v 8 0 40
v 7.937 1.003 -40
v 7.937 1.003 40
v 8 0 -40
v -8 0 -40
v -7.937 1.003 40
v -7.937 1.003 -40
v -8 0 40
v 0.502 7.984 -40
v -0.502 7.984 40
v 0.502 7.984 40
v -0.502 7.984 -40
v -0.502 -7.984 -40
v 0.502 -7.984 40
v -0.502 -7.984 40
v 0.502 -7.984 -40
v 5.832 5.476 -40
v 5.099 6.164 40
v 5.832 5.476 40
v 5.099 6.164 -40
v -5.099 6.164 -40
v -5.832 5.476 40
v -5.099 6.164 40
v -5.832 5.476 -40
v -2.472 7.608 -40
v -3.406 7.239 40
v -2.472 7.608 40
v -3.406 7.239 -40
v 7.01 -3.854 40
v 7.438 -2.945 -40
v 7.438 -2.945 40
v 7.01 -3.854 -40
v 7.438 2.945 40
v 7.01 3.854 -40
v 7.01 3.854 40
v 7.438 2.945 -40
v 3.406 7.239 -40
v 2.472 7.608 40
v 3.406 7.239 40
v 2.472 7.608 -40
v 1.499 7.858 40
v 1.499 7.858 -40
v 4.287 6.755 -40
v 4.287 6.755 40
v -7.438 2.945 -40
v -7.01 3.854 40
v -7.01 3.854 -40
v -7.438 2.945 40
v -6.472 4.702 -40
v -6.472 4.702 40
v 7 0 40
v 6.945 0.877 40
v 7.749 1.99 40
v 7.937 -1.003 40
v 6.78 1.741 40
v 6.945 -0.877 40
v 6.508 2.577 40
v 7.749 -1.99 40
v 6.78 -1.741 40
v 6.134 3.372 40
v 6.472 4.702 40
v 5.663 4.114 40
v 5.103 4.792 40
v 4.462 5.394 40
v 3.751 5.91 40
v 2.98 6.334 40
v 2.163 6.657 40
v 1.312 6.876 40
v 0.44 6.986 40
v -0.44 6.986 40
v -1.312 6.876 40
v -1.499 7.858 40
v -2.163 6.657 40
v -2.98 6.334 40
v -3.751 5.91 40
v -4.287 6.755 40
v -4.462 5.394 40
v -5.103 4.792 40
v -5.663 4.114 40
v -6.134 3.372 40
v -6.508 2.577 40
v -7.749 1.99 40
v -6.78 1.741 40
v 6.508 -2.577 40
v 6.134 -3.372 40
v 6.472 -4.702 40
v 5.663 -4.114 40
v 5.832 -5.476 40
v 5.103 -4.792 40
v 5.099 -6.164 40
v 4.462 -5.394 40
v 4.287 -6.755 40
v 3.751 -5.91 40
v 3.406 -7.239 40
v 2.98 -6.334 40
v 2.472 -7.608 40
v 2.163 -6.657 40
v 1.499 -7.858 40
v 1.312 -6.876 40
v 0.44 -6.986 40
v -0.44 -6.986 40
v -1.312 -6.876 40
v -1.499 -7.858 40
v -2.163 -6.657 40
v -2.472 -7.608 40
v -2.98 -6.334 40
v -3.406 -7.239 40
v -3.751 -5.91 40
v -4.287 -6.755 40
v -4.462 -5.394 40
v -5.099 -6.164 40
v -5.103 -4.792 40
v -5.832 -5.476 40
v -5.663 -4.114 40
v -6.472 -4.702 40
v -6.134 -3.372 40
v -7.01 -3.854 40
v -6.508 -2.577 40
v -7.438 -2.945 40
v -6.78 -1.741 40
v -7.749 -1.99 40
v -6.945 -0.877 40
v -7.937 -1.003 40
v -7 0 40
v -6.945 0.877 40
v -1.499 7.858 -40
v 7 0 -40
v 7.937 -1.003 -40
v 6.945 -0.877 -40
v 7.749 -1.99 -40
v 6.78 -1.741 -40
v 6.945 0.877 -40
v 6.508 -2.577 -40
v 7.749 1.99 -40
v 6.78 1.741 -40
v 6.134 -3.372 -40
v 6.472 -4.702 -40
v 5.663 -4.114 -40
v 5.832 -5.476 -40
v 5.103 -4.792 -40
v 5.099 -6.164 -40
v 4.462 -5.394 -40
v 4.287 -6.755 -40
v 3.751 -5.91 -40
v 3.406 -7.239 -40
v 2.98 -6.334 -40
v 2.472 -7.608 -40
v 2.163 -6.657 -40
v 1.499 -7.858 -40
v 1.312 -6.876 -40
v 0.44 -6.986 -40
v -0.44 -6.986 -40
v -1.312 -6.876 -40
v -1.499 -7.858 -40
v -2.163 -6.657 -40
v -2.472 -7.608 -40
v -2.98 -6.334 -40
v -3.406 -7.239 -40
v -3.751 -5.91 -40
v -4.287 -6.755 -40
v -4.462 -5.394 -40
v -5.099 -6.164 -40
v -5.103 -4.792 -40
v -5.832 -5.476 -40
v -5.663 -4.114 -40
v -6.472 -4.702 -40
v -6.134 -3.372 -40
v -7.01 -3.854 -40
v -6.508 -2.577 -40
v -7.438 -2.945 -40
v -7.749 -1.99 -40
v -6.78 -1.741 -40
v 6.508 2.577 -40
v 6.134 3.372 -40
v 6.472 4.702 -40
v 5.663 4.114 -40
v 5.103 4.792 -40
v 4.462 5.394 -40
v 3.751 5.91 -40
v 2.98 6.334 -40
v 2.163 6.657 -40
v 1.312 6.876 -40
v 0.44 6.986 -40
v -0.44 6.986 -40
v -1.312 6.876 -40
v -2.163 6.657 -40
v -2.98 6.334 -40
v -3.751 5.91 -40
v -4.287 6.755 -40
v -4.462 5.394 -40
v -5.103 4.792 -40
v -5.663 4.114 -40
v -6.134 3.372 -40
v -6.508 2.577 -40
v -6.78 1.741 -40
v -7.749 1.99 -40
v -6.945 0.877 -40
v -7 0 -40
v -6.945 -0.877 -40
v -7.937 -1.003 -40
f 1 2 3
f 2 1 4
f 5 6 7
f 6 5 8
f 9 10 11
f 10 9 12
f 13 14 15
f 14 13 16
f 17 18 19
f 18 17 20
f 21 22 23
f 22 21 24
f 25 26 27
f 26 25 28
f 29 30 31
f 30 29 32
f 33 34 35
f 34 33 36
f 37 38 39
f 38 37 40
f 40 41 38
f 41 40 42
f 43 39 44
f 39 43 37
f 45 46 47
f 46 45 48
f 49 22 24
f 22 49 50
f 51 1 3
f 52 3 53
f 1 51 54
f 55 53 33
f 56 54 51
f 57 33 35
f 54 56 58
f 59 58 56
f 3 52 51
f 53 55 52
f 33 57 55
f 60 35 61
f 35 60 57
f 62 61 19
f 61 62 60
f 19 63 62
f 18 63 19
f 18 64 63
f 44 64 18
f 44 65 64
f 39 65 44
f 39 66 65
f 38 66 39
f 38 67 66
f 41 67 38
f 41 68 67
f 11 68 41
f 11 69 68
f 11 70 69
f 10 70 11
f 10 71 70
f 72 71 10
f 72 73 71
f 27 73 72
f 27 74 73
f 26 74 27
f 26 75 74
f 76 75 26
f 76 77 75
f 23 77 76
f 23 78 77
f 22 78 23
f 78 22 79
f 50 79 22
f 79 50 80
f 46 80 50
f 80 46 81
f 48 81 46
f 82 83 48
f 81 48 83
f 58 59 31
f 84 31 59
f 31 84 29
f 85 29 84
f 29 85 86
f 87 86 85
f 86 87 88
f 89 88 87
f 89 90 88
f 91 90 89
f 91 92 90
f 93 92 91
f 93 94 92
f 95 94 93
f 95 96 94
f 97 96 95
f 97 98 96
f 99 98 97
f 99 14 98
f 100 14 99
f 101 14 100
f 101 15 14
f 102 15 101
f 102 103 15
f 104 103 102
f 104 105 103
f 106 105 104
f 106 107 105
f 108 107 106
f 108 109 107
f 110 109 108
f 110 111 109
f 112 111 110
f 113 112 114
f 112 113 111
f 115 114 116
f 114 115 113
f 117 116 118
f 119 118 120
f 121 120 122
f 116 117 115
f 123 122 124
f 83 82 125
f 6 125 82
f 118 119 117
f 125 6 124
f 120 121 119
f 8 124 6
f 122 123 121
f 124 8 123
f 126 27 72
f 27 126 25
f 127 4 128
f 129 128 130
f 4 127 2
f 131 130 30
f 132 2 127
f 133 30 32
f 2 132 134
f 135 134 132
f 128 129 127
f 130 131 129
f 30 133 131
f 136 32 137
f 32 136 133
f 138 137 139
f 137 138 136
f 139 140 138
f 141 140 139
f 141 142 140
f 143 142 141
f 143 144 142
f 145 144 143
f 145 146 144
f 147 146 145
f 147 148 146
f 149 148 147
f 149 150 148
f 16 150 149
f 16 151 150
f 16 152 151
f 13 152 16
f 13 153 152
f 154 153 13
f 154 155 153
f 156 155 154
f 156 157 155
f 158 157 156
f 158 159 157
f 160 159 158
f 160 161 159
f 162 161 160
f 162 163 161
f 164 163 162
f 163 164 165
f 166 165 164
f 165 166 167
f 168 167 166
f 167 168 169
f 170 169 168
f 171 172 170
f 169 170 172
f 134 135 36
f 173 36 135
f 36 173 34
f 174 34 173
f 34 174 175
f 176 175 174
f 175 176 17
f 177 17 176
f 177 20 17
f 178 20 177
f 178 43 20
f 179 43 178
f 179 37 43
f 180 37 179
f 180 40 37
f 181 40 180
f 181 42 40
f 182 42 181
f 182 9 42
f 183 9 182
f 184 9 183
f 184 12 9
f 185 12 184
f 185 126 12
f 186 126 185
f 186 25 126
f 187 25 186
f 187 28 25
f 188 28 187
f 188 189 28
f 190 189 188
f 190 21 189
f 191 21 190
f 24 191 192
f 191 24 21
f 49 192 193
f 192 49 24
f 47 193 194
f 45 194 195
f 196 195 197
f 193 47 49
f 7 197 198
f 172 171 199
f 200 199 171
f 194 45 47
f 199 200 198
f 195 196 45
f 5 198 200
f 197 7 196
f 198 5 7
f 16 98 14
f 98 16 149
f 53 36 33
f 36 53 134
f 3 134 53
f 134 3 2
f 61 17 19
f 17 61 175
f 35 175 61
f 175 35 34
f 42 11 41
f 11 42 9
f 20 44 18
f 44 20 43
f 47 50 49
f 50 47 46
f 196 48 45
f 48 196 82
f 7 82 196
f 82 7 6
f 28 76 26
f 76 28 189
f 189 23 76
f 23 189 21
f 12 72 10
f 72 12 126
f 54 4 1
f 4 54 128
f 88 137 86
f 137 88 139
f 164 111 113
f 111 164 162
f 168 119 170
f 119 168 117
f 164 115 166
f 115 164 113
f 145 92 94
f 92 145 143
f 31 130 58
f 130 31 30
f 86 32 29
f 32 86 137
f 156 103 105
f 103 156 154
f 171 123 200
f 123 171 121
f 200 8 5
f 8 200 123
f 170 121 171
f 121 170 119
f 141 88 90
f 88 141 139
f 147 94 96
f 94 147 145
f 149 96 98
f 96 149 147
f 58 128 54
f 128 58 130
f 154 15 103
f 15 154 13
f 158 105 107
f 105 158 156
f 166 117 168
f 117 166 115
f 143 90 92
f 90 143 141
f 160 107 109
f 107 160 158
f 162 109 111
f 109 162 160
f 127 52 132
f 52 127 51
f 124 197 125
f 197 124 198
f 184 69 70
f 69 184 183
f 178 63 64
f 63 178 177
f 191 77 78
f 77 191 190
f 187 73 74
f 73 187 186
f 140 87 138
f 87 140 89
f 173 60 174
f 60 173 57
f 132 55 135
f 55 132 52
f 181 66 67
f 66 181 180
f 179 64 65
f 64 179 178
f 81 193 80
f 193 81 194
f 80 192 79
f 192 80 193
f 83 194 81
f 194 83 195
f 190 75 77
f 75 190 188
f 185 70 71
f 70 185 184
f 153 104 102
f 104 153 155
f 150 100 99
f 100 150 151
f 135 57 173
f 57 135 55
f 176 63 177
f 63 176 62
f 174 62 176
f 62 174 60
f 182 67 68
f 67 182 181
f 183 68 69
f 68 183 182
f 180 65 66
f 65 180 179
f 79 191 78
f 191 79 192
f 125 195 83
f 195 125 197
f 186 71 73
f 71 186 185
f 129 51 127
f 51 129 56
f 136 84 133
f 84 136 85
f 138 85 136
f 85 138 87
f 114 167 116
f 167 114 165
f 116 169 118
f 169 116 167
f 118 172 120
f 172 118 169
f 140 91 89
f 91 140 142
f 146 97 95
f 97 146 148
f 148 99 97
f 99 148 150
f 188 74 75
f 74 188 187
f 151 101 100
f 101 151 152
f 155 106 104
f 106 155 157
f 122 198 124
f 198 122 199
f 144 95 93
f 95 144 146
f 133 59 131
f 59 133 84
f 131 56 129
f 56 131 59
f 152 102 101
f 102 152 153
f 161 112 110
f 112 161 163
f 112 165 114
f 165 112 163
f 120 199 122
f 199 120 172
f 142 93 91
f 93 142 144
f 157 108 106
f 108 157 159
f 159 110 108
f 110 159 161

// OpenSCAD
$fn = 50;


difference() {
	union() {
		translate(v = [0, 0, -40.0000000000]) {
			cylinder(h = 80, r = 8.0000000000);
		}
	}
	union() {
		translate(v = [0, 0, -100.0000000000]) {
			cylinder(h = 200, r = 7);
		}
	}
}
